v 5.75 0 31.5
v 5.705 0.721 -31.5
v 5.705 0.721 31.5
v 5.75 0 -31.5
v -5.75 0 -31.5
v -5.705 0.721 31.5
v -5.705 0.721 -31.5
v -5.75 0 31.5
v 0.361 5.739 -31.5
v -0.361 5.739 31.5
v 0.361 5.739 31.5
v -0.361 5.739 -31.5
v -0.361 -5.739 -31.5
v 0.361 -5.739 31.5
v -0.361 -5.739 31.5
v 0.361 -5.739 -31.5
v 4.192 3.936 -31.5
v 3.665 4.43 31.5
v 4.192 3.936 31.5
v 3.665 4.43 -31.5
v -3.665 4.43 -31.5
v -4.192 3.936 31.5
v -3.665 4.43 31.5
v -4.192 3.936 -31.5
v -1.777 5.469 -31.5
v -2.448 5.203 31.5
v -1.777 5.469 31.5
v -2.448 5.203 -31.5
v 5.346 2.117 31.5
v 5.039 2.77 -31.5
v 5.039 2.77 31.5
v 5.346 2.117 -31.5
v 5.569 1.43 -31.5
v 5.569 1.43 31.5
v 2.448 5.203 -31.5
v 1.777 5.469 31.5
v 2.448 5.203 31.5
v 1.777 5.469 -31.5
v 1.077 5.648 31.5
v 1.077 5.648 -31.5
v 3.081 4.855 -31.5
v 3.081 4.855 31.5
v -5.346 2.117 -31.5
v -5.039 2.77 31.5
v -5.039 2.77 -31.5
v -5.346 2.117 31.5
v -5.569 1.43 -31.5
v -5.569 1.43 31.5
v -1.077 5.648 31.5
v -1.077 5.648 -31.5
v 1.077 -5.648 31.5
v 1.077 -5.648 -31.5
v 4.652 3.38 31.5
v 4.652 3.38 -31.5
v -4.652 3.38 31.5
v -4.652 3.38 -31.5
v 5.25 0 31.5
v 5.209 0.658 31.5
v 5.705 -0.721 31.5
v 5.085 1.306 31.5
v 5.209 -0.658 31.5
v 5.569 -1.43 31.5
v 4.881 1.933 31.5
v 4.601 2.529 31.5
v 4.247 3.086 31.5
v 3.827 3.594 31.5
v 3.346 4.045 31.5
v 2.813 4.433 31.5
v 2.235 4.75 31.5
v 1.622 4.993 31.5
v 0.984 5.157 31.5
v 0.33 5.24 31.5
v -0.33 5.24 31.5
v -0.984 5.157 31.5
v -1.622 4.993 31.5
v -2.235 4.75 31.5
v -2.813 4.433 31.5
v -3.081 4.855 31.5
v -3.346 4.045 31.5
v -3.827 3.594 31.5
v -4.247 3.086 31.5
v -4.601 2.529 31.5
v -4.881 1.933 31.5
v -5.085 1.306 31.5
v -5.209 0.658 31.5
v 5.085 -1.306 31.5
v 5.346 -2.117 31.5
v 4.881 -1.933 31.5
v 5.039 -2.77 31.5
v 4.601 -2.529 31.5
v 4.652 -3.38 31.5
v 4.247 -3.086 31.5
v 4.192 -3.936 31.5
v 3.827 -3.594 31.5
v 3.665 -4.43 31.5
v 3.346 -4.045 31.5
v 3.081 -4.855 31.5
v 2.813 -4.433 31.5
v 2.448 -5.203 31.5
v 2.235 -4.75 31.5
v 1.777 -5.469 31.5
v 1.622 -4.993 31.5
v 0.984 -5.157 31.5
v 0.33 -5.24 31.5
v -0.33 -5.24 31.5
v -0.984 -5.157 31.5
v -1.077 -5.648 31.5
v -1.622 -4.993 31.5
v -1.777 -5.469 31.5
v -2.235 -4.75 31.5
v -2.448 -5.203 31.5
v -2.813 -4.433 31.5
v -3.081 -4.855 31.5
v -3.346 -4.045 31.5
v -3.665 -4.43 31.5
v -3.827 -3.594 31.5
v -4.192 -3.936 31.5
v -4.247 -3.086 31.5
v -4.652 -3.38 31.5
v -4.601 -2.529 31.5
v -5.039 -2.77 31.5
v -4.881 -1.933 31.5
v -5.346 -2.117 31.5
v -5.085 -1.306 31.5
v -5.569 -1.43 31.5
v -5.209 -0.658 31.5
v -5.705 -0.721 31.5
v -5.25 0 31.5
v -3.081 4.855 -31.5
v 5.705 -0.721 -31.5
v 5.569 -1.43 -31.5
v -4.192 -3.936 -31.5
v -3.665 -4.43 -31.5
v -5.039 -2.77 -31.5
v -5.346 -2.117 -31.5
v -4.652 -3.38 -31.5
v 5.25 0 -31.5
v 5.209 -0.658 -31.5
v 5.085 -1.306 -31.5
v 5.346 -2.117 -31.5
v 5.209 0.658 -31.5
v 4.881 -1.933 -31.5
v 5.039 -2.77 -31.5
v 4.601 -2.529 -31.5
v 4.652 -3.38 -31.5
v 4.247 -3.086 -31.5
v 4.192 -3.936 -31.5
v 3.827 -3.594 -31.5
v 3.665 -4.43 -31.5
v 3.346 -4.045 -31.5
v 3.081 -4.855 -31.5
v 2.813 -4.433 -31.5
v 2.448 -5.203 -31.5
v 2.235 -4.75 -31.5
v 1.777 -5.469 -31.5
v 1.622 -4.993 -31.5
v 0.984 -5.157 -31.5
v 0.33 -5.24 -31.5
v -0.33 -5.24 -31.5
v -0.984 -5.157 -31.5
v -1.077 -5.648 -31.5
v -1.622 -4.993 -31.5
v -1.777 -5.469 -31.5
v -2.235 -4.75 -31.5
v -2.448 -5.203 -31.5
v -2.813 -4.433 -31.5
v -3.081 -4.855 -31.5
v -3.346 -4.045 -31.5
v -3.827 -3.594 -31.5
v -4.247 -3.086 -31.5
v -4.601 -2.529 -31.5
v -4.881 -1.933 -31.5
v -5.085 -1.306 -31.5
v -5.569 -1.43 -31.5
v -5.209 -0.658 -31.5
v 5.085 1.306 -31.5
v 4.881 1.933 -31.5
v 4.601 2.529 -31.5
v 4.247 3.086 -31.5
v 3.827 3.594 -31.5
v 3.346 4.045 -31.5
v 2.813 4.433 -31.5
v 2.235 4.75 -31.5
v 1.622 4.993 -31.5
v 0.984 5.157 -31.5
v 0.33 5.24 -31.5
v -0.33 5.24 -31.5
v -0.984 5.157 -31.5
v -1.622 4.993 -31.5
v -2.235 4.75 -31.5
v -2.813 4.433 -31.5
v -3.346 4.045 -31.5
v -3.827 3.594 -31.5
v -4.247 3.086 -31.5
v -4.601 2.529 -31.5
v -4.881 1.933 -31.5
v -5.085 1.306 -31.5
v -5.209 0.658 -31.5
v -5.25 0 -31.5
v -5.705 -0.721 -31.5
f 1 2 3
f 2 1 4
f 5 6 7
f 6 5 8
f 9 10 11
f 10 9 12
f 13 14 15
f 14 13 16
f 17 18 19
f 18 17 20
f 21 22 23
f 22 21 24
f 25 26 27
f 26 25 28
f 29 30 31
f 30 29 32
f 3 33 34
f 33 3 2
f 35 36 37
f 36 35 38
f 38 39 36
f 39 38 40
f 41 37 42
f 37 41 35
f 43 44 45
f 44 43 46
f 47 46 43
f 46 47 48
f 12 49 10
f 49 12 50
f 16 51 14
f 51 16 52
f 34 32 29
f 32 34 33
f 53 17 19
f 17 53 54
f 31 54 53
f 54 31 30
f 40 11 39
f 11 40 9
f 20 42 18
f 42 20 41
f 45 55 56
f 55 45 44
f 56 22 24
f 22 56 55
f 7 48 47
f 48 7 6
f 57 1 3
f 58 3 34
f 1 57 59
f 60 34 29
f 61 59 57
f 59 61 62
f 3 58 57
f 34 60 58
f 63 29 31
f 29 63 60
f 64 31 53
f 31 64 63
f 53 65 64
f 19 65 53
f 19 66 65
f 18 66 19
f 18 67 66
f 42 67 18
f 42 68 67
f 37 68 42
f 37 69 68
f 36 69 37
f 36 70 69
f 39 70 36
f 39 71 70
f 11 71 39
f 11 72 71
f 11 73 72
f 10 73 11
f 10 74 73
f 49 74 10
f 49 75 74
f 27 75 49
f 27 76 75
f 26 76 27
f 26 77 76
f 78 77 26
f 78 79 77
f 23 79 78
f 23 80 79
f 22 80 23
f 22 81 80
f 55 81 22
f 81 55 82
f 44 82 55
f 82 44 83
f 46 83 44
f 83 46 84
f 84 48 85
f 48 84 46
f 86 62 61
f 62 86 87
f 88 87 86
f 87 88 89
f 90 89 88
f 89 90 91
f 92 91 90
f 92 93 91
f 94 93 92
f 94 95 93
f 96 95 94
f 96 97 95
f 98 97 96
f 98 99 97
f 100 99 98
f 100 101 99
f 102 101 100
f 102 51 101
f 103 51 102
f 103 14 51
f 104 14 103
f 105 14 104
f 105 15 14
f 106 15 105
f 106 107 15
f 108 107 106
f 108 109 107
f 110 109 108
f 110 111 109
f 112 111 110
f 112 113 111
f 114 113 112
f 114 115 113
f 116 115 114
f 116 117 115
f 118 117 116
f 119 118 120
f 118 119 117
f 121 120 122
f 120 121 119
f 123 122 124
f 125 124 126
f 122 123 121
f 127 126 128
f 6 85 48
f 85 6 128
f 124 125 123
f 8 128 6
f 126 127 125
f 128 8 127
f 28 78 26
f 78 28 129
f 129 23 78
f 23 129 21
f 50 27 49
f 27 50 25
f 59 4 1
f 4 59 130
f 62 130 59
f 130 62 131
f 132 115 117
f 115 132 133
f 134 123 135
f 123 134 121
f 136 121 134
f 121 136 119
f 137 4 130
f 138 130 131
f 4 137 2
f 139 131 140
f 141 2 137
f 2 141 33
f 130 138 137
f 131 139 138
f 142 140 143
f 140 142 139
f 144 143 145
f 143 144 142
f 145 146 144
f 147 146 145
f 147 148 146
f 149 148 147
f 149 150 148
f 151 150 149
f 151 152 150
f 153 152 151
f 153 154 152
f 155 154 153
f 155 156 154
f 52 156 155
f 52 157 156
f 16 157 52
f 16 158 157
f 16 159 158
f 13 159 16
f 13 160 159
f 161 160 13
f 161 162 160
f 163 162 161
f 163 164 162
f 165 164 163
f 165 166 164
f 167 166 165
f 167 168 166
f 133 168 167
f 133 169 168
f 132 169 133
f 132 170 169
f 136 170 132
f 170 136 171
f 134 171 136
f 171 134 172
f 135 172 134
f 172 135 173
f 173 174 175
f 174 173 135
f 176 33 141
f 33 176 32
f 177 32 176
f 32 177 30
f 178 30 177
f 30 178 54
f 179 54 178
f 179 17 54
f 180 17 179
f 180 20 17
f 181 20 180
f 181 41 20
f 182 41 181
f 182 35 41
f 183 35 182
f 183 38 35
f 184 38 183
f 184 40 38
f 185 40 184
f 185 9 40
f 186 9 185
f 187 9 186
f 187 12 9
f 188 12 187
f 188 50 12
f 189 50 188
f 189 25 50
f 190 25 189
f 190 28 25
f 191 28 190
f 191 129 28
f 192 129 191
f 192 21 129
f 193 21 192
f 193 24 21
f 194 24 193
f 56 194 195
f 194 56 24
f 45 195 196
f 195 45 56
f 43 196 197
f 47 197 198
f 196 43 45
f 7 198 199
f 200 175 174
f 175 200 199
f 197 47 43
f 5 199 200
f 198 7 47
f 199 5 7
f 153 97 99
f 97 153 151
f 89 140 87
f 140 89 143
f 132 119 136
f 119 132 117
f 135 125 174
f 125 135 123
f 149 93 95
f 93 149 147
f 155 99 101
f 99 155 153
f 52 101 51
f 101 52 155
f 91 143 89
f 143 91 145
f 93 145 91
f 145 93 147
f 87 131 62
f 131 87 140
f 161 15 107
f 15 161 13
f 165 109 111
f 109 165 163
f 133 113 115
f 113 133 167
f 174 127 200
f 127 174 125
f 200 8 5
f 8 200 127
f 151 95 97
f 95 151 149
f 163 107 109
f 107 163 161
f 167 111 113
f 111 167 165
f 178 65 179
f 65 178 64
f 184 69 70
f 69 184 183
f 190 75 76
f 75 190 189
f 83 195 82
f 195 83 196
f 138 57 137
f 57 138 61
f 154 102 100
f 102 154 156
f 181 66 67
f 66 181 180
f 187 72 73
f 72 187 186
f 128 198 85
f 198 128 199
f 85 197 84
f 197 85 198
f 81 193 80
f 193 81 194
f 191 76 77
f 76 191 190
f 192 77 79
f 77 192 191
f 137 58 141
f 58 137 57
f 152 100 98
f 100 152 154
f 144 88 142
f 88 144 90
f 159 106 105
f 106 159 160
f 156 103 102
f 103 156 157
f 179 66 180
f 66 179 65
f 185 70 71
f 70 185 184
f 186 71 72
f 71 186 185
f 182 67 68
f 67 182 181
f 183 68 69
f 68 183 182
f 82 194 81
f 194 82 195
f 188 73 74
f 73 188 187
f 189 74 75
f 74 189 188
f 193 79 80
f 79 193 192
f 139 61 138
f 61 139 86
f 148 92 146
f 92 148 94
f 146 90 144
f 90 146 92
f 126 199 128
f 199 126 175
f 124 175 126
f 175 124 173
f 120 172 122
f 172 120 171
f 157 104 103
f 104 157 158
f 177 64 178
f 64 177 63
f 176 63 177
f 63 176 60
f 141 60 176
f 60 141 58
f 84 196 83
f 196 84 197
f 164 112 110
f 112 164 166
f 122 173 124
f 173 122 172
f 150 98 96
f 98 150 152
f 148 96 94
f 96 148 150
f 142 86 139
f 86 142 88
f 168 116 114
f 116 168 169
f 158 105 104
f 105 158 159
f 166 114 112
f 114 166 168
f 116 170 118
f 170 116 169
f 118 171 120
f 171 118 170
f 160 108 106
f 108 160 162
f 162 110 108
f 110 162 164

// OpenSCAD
$fn = 50;


difference() {
	union() {
		translate(v = [0, 0, -31.5000000000]) {
			cylinder(h = 63, r = 5.7500000000);
		}
	}
	union() {
		translate(v = [0, 0, -100.0000000000]) {
			cylinder(h = 200, r = 5.2500000000);
		}
	}
}
